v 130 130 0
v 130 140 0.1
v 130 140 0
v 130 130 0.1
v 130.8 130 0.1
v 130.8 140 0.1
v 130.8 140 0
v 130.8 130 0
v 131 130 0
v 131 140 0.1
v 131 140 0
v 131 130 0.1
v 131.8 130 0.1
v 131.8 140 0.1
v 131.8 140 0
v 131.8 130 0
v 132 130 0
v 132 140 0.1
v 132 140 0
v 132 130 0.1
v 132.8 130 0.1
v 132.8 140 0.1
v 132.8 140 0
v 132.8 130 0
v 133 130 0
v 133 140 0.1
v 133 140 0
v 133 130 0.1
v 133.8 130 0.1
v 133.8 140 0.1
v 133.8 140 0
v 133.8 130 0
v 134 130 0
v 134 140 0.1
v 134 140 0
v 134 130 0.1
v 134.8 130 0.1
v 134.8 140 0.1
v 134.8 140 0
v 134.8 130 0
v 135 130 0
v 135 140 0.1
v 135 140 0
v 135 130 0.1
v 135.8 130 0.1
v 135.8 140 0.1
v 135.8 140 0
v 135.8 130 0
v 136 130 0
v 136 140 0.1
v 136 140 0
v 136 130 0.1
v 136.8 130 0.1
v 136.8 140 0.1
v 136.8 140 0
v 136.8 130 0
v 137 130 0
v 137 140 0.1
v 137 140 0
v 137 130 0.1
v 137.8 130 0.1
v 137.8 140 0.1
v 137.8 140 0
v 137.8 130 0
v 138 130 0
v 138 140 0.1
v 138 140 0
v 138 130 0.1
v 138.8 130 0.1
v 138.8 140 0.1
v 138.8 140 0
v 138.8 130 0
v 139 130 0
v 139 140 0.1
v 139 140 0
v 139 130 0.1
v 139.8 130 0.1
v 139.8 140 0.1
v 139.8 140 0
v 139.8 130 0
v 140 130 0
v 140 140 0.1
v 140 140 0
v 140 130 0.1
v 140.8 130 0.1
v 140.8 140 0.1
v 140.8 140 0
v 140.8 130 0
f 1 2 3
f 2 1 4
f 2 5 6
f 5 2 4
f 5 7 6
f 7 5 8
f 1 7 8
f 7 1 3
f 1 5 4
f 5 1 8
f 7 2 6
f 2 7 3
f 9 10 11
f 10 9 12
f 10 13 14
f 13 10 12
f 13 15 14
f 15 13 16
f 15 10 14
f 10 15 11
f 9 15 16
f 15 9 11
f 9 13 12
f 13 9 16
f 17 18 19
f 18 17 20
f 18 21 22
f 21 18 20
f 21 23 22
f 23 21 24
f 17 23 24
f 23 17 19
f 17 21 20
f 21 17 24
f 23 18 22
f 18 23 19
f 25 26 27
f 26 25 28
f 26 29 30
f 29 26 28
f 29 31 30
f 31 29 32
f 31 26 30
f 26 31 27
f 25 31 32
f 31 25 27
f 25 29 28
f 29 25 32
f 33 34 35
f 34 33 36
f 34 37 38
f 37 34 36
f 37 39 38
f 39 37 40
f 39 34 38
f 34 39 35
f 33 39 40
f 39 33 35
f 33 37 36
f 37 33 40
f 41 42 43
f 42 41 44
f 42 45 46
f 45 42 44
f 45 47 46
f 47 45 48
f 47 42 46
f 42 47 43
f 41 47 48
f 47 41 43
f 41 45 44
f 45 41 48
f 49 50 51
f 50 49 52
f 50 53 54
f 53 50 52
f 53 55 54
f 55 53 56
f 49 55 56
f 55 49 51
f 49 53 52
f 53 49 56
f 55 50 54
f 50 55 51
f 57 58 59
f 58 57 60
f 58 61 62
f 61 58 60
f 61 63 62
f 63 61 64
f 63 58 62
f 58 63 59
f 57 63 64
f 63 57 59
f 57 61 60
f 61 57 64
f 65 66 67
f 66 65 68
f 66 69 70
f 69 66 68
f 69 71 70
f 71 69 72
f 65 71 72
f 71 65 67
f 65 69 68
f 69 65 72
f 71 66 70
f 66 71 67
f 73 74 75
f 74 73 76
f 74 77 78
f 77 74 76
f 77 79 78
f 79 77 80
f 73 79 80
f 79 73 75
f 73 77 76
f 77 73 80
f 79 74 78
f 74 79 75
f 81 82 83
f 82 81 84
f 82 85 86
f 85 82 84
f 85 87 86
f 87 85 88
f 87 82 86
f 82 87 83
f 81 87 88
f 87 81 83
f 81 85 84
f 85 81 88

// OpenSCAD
translate([10+120,10+120,0])
        for (i = [0 : 10]){
            translate([i,0,0])
                cube(size = [0.8,10,0.1]);
    }
